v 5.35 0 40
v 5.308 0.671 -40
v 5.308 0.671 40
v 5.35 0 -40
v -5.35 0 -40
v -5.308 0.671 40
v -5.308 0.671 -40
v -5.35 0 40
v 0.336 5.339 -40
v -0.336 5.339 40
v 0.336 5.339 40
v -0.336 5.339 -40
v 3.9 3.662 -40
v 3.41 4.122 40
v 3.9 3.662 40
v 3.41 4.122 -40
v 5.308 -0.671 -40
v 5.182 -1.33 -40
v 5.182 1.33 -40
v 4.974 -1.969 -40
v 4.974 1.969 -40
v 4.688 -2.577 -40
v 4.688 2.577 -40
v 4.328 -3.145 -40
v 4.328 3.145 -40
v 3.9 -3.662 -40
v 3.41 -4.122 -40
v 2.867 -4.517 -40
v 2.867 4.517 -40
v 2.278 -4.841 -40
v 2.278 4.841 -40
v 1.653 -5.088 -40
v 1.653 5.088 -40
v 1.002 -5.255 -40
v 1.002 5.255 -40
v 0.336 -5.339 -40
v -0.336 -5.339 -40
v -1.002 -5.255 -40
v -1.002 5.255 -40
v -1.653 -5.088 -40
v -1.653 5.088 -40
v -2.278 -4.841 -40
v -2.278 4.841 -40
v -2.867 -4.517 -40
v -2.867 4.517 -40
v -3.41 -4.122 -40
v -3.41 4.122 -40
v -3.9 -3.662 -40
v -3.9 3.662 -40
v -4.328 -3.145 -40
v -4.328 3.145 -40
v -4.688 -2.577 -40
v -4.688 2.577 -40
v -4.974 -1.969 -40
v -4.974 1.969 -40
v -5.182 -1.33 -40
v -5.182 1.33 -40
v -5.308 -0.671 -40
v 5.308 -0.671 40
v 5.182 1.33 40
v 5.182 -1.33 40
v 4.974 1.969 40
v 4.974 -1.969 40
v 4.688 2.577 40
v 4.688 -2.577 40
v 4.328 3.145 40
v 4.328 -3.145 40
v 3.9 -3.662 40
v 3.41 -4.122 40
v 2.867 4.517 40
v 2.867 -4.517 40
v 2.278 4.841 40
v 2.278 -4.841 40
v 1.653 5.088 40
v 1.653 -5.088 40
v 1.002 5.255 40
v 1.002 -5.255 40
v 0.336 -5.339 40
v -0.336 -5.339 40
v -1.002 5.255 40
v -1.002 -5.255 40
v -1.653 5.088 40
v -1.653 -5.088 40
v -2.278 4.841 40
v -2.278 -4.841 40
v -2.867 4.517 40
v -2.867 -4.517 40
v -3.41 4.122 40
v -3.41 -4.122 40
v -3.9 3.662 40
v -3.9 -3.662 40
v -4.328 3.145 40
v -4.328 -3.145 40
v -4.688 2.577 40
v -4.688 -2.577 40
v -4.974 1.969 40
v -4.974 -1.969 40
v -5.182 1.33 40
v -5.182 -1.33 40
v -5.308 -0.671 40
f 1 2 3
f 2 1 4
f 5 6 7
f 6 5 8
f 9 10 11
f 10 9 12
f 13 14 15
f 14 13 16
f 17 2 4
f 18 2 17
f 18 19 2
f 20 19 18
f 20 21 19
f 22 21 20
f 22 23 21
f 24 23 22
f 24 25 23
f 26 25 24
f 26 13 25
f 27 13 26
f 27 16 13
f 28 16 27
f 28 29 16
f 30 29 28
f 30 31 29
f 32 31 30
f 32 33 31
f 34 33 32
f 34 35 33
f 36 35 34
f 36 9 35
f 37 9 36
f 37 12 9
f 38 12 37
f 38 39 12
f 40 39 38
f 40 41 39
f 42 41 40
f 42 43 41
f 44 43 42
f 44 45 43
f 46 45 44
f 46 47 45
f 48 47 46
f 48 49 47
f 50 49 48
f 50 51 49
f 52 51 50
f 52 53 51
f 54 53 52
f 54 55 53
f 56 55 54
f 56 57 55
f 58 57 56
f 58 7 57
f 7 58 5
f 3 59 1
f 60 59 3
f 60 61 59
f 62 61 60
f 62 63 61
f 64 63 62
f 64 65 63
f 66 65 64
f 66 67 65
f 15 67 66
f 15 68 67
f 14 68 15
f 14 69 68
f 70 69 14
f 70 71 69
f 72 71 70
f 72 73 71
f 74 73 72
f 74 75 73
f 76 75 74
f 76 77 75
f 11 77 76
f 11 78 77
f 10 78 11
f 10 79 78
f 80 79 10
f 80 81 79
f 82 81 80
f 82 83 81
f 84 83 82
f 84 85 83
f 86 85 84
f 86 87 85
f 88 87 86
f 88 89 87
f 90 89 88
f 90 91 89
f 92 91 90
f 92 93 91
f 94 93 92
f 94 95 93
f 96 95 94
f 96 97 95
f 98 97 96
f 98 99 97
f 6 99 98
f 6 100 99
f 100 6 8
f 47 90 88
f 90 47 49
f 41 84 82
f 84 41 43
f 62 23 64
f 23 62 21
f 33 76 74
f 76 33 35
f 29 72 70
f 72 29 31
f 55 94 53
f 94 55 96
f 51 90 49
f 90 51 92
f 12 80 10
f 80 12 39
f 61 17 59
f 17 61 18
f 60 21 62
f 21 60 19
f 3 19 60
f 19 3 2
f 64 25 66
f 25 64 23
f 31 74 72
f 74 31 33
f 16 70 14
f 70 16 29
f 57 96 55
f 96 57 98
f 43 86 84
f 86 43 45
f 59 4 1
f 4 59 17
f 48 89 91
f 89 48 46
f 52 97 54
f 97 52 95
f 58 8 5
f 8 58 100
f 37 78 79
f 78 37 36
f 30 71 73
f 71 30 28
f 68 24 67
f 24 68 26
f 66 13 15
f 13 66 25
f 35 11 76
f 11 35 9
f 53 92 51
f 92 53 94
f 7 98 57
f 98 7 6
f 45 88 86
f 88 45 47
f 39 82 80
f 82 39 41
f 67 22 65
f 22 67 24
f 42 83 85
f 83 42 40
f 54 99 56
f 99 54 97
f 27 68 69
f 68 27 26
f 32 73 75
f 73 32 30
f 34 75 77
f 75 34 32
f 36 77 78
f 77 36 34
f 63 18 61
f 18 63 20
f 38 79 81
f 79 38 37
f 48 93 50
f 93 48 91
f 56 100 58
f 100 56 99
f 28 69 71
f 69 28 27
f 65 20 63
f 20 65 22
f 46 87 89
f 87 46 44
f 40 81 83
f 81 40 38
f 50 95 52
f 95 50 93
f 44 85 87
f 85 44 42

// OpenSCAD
$fn = 50;


difference() {
	union() {
		translate(v = [0, 0, -40.0000000000]) {
			cylinder(h = 80, r = 5.3500000000);
		}
	}
	union() {
		translate(v = [0, 0, -100.0000000000]) {
			cylinder(h = 200, r = 0);
		}
	}
}
